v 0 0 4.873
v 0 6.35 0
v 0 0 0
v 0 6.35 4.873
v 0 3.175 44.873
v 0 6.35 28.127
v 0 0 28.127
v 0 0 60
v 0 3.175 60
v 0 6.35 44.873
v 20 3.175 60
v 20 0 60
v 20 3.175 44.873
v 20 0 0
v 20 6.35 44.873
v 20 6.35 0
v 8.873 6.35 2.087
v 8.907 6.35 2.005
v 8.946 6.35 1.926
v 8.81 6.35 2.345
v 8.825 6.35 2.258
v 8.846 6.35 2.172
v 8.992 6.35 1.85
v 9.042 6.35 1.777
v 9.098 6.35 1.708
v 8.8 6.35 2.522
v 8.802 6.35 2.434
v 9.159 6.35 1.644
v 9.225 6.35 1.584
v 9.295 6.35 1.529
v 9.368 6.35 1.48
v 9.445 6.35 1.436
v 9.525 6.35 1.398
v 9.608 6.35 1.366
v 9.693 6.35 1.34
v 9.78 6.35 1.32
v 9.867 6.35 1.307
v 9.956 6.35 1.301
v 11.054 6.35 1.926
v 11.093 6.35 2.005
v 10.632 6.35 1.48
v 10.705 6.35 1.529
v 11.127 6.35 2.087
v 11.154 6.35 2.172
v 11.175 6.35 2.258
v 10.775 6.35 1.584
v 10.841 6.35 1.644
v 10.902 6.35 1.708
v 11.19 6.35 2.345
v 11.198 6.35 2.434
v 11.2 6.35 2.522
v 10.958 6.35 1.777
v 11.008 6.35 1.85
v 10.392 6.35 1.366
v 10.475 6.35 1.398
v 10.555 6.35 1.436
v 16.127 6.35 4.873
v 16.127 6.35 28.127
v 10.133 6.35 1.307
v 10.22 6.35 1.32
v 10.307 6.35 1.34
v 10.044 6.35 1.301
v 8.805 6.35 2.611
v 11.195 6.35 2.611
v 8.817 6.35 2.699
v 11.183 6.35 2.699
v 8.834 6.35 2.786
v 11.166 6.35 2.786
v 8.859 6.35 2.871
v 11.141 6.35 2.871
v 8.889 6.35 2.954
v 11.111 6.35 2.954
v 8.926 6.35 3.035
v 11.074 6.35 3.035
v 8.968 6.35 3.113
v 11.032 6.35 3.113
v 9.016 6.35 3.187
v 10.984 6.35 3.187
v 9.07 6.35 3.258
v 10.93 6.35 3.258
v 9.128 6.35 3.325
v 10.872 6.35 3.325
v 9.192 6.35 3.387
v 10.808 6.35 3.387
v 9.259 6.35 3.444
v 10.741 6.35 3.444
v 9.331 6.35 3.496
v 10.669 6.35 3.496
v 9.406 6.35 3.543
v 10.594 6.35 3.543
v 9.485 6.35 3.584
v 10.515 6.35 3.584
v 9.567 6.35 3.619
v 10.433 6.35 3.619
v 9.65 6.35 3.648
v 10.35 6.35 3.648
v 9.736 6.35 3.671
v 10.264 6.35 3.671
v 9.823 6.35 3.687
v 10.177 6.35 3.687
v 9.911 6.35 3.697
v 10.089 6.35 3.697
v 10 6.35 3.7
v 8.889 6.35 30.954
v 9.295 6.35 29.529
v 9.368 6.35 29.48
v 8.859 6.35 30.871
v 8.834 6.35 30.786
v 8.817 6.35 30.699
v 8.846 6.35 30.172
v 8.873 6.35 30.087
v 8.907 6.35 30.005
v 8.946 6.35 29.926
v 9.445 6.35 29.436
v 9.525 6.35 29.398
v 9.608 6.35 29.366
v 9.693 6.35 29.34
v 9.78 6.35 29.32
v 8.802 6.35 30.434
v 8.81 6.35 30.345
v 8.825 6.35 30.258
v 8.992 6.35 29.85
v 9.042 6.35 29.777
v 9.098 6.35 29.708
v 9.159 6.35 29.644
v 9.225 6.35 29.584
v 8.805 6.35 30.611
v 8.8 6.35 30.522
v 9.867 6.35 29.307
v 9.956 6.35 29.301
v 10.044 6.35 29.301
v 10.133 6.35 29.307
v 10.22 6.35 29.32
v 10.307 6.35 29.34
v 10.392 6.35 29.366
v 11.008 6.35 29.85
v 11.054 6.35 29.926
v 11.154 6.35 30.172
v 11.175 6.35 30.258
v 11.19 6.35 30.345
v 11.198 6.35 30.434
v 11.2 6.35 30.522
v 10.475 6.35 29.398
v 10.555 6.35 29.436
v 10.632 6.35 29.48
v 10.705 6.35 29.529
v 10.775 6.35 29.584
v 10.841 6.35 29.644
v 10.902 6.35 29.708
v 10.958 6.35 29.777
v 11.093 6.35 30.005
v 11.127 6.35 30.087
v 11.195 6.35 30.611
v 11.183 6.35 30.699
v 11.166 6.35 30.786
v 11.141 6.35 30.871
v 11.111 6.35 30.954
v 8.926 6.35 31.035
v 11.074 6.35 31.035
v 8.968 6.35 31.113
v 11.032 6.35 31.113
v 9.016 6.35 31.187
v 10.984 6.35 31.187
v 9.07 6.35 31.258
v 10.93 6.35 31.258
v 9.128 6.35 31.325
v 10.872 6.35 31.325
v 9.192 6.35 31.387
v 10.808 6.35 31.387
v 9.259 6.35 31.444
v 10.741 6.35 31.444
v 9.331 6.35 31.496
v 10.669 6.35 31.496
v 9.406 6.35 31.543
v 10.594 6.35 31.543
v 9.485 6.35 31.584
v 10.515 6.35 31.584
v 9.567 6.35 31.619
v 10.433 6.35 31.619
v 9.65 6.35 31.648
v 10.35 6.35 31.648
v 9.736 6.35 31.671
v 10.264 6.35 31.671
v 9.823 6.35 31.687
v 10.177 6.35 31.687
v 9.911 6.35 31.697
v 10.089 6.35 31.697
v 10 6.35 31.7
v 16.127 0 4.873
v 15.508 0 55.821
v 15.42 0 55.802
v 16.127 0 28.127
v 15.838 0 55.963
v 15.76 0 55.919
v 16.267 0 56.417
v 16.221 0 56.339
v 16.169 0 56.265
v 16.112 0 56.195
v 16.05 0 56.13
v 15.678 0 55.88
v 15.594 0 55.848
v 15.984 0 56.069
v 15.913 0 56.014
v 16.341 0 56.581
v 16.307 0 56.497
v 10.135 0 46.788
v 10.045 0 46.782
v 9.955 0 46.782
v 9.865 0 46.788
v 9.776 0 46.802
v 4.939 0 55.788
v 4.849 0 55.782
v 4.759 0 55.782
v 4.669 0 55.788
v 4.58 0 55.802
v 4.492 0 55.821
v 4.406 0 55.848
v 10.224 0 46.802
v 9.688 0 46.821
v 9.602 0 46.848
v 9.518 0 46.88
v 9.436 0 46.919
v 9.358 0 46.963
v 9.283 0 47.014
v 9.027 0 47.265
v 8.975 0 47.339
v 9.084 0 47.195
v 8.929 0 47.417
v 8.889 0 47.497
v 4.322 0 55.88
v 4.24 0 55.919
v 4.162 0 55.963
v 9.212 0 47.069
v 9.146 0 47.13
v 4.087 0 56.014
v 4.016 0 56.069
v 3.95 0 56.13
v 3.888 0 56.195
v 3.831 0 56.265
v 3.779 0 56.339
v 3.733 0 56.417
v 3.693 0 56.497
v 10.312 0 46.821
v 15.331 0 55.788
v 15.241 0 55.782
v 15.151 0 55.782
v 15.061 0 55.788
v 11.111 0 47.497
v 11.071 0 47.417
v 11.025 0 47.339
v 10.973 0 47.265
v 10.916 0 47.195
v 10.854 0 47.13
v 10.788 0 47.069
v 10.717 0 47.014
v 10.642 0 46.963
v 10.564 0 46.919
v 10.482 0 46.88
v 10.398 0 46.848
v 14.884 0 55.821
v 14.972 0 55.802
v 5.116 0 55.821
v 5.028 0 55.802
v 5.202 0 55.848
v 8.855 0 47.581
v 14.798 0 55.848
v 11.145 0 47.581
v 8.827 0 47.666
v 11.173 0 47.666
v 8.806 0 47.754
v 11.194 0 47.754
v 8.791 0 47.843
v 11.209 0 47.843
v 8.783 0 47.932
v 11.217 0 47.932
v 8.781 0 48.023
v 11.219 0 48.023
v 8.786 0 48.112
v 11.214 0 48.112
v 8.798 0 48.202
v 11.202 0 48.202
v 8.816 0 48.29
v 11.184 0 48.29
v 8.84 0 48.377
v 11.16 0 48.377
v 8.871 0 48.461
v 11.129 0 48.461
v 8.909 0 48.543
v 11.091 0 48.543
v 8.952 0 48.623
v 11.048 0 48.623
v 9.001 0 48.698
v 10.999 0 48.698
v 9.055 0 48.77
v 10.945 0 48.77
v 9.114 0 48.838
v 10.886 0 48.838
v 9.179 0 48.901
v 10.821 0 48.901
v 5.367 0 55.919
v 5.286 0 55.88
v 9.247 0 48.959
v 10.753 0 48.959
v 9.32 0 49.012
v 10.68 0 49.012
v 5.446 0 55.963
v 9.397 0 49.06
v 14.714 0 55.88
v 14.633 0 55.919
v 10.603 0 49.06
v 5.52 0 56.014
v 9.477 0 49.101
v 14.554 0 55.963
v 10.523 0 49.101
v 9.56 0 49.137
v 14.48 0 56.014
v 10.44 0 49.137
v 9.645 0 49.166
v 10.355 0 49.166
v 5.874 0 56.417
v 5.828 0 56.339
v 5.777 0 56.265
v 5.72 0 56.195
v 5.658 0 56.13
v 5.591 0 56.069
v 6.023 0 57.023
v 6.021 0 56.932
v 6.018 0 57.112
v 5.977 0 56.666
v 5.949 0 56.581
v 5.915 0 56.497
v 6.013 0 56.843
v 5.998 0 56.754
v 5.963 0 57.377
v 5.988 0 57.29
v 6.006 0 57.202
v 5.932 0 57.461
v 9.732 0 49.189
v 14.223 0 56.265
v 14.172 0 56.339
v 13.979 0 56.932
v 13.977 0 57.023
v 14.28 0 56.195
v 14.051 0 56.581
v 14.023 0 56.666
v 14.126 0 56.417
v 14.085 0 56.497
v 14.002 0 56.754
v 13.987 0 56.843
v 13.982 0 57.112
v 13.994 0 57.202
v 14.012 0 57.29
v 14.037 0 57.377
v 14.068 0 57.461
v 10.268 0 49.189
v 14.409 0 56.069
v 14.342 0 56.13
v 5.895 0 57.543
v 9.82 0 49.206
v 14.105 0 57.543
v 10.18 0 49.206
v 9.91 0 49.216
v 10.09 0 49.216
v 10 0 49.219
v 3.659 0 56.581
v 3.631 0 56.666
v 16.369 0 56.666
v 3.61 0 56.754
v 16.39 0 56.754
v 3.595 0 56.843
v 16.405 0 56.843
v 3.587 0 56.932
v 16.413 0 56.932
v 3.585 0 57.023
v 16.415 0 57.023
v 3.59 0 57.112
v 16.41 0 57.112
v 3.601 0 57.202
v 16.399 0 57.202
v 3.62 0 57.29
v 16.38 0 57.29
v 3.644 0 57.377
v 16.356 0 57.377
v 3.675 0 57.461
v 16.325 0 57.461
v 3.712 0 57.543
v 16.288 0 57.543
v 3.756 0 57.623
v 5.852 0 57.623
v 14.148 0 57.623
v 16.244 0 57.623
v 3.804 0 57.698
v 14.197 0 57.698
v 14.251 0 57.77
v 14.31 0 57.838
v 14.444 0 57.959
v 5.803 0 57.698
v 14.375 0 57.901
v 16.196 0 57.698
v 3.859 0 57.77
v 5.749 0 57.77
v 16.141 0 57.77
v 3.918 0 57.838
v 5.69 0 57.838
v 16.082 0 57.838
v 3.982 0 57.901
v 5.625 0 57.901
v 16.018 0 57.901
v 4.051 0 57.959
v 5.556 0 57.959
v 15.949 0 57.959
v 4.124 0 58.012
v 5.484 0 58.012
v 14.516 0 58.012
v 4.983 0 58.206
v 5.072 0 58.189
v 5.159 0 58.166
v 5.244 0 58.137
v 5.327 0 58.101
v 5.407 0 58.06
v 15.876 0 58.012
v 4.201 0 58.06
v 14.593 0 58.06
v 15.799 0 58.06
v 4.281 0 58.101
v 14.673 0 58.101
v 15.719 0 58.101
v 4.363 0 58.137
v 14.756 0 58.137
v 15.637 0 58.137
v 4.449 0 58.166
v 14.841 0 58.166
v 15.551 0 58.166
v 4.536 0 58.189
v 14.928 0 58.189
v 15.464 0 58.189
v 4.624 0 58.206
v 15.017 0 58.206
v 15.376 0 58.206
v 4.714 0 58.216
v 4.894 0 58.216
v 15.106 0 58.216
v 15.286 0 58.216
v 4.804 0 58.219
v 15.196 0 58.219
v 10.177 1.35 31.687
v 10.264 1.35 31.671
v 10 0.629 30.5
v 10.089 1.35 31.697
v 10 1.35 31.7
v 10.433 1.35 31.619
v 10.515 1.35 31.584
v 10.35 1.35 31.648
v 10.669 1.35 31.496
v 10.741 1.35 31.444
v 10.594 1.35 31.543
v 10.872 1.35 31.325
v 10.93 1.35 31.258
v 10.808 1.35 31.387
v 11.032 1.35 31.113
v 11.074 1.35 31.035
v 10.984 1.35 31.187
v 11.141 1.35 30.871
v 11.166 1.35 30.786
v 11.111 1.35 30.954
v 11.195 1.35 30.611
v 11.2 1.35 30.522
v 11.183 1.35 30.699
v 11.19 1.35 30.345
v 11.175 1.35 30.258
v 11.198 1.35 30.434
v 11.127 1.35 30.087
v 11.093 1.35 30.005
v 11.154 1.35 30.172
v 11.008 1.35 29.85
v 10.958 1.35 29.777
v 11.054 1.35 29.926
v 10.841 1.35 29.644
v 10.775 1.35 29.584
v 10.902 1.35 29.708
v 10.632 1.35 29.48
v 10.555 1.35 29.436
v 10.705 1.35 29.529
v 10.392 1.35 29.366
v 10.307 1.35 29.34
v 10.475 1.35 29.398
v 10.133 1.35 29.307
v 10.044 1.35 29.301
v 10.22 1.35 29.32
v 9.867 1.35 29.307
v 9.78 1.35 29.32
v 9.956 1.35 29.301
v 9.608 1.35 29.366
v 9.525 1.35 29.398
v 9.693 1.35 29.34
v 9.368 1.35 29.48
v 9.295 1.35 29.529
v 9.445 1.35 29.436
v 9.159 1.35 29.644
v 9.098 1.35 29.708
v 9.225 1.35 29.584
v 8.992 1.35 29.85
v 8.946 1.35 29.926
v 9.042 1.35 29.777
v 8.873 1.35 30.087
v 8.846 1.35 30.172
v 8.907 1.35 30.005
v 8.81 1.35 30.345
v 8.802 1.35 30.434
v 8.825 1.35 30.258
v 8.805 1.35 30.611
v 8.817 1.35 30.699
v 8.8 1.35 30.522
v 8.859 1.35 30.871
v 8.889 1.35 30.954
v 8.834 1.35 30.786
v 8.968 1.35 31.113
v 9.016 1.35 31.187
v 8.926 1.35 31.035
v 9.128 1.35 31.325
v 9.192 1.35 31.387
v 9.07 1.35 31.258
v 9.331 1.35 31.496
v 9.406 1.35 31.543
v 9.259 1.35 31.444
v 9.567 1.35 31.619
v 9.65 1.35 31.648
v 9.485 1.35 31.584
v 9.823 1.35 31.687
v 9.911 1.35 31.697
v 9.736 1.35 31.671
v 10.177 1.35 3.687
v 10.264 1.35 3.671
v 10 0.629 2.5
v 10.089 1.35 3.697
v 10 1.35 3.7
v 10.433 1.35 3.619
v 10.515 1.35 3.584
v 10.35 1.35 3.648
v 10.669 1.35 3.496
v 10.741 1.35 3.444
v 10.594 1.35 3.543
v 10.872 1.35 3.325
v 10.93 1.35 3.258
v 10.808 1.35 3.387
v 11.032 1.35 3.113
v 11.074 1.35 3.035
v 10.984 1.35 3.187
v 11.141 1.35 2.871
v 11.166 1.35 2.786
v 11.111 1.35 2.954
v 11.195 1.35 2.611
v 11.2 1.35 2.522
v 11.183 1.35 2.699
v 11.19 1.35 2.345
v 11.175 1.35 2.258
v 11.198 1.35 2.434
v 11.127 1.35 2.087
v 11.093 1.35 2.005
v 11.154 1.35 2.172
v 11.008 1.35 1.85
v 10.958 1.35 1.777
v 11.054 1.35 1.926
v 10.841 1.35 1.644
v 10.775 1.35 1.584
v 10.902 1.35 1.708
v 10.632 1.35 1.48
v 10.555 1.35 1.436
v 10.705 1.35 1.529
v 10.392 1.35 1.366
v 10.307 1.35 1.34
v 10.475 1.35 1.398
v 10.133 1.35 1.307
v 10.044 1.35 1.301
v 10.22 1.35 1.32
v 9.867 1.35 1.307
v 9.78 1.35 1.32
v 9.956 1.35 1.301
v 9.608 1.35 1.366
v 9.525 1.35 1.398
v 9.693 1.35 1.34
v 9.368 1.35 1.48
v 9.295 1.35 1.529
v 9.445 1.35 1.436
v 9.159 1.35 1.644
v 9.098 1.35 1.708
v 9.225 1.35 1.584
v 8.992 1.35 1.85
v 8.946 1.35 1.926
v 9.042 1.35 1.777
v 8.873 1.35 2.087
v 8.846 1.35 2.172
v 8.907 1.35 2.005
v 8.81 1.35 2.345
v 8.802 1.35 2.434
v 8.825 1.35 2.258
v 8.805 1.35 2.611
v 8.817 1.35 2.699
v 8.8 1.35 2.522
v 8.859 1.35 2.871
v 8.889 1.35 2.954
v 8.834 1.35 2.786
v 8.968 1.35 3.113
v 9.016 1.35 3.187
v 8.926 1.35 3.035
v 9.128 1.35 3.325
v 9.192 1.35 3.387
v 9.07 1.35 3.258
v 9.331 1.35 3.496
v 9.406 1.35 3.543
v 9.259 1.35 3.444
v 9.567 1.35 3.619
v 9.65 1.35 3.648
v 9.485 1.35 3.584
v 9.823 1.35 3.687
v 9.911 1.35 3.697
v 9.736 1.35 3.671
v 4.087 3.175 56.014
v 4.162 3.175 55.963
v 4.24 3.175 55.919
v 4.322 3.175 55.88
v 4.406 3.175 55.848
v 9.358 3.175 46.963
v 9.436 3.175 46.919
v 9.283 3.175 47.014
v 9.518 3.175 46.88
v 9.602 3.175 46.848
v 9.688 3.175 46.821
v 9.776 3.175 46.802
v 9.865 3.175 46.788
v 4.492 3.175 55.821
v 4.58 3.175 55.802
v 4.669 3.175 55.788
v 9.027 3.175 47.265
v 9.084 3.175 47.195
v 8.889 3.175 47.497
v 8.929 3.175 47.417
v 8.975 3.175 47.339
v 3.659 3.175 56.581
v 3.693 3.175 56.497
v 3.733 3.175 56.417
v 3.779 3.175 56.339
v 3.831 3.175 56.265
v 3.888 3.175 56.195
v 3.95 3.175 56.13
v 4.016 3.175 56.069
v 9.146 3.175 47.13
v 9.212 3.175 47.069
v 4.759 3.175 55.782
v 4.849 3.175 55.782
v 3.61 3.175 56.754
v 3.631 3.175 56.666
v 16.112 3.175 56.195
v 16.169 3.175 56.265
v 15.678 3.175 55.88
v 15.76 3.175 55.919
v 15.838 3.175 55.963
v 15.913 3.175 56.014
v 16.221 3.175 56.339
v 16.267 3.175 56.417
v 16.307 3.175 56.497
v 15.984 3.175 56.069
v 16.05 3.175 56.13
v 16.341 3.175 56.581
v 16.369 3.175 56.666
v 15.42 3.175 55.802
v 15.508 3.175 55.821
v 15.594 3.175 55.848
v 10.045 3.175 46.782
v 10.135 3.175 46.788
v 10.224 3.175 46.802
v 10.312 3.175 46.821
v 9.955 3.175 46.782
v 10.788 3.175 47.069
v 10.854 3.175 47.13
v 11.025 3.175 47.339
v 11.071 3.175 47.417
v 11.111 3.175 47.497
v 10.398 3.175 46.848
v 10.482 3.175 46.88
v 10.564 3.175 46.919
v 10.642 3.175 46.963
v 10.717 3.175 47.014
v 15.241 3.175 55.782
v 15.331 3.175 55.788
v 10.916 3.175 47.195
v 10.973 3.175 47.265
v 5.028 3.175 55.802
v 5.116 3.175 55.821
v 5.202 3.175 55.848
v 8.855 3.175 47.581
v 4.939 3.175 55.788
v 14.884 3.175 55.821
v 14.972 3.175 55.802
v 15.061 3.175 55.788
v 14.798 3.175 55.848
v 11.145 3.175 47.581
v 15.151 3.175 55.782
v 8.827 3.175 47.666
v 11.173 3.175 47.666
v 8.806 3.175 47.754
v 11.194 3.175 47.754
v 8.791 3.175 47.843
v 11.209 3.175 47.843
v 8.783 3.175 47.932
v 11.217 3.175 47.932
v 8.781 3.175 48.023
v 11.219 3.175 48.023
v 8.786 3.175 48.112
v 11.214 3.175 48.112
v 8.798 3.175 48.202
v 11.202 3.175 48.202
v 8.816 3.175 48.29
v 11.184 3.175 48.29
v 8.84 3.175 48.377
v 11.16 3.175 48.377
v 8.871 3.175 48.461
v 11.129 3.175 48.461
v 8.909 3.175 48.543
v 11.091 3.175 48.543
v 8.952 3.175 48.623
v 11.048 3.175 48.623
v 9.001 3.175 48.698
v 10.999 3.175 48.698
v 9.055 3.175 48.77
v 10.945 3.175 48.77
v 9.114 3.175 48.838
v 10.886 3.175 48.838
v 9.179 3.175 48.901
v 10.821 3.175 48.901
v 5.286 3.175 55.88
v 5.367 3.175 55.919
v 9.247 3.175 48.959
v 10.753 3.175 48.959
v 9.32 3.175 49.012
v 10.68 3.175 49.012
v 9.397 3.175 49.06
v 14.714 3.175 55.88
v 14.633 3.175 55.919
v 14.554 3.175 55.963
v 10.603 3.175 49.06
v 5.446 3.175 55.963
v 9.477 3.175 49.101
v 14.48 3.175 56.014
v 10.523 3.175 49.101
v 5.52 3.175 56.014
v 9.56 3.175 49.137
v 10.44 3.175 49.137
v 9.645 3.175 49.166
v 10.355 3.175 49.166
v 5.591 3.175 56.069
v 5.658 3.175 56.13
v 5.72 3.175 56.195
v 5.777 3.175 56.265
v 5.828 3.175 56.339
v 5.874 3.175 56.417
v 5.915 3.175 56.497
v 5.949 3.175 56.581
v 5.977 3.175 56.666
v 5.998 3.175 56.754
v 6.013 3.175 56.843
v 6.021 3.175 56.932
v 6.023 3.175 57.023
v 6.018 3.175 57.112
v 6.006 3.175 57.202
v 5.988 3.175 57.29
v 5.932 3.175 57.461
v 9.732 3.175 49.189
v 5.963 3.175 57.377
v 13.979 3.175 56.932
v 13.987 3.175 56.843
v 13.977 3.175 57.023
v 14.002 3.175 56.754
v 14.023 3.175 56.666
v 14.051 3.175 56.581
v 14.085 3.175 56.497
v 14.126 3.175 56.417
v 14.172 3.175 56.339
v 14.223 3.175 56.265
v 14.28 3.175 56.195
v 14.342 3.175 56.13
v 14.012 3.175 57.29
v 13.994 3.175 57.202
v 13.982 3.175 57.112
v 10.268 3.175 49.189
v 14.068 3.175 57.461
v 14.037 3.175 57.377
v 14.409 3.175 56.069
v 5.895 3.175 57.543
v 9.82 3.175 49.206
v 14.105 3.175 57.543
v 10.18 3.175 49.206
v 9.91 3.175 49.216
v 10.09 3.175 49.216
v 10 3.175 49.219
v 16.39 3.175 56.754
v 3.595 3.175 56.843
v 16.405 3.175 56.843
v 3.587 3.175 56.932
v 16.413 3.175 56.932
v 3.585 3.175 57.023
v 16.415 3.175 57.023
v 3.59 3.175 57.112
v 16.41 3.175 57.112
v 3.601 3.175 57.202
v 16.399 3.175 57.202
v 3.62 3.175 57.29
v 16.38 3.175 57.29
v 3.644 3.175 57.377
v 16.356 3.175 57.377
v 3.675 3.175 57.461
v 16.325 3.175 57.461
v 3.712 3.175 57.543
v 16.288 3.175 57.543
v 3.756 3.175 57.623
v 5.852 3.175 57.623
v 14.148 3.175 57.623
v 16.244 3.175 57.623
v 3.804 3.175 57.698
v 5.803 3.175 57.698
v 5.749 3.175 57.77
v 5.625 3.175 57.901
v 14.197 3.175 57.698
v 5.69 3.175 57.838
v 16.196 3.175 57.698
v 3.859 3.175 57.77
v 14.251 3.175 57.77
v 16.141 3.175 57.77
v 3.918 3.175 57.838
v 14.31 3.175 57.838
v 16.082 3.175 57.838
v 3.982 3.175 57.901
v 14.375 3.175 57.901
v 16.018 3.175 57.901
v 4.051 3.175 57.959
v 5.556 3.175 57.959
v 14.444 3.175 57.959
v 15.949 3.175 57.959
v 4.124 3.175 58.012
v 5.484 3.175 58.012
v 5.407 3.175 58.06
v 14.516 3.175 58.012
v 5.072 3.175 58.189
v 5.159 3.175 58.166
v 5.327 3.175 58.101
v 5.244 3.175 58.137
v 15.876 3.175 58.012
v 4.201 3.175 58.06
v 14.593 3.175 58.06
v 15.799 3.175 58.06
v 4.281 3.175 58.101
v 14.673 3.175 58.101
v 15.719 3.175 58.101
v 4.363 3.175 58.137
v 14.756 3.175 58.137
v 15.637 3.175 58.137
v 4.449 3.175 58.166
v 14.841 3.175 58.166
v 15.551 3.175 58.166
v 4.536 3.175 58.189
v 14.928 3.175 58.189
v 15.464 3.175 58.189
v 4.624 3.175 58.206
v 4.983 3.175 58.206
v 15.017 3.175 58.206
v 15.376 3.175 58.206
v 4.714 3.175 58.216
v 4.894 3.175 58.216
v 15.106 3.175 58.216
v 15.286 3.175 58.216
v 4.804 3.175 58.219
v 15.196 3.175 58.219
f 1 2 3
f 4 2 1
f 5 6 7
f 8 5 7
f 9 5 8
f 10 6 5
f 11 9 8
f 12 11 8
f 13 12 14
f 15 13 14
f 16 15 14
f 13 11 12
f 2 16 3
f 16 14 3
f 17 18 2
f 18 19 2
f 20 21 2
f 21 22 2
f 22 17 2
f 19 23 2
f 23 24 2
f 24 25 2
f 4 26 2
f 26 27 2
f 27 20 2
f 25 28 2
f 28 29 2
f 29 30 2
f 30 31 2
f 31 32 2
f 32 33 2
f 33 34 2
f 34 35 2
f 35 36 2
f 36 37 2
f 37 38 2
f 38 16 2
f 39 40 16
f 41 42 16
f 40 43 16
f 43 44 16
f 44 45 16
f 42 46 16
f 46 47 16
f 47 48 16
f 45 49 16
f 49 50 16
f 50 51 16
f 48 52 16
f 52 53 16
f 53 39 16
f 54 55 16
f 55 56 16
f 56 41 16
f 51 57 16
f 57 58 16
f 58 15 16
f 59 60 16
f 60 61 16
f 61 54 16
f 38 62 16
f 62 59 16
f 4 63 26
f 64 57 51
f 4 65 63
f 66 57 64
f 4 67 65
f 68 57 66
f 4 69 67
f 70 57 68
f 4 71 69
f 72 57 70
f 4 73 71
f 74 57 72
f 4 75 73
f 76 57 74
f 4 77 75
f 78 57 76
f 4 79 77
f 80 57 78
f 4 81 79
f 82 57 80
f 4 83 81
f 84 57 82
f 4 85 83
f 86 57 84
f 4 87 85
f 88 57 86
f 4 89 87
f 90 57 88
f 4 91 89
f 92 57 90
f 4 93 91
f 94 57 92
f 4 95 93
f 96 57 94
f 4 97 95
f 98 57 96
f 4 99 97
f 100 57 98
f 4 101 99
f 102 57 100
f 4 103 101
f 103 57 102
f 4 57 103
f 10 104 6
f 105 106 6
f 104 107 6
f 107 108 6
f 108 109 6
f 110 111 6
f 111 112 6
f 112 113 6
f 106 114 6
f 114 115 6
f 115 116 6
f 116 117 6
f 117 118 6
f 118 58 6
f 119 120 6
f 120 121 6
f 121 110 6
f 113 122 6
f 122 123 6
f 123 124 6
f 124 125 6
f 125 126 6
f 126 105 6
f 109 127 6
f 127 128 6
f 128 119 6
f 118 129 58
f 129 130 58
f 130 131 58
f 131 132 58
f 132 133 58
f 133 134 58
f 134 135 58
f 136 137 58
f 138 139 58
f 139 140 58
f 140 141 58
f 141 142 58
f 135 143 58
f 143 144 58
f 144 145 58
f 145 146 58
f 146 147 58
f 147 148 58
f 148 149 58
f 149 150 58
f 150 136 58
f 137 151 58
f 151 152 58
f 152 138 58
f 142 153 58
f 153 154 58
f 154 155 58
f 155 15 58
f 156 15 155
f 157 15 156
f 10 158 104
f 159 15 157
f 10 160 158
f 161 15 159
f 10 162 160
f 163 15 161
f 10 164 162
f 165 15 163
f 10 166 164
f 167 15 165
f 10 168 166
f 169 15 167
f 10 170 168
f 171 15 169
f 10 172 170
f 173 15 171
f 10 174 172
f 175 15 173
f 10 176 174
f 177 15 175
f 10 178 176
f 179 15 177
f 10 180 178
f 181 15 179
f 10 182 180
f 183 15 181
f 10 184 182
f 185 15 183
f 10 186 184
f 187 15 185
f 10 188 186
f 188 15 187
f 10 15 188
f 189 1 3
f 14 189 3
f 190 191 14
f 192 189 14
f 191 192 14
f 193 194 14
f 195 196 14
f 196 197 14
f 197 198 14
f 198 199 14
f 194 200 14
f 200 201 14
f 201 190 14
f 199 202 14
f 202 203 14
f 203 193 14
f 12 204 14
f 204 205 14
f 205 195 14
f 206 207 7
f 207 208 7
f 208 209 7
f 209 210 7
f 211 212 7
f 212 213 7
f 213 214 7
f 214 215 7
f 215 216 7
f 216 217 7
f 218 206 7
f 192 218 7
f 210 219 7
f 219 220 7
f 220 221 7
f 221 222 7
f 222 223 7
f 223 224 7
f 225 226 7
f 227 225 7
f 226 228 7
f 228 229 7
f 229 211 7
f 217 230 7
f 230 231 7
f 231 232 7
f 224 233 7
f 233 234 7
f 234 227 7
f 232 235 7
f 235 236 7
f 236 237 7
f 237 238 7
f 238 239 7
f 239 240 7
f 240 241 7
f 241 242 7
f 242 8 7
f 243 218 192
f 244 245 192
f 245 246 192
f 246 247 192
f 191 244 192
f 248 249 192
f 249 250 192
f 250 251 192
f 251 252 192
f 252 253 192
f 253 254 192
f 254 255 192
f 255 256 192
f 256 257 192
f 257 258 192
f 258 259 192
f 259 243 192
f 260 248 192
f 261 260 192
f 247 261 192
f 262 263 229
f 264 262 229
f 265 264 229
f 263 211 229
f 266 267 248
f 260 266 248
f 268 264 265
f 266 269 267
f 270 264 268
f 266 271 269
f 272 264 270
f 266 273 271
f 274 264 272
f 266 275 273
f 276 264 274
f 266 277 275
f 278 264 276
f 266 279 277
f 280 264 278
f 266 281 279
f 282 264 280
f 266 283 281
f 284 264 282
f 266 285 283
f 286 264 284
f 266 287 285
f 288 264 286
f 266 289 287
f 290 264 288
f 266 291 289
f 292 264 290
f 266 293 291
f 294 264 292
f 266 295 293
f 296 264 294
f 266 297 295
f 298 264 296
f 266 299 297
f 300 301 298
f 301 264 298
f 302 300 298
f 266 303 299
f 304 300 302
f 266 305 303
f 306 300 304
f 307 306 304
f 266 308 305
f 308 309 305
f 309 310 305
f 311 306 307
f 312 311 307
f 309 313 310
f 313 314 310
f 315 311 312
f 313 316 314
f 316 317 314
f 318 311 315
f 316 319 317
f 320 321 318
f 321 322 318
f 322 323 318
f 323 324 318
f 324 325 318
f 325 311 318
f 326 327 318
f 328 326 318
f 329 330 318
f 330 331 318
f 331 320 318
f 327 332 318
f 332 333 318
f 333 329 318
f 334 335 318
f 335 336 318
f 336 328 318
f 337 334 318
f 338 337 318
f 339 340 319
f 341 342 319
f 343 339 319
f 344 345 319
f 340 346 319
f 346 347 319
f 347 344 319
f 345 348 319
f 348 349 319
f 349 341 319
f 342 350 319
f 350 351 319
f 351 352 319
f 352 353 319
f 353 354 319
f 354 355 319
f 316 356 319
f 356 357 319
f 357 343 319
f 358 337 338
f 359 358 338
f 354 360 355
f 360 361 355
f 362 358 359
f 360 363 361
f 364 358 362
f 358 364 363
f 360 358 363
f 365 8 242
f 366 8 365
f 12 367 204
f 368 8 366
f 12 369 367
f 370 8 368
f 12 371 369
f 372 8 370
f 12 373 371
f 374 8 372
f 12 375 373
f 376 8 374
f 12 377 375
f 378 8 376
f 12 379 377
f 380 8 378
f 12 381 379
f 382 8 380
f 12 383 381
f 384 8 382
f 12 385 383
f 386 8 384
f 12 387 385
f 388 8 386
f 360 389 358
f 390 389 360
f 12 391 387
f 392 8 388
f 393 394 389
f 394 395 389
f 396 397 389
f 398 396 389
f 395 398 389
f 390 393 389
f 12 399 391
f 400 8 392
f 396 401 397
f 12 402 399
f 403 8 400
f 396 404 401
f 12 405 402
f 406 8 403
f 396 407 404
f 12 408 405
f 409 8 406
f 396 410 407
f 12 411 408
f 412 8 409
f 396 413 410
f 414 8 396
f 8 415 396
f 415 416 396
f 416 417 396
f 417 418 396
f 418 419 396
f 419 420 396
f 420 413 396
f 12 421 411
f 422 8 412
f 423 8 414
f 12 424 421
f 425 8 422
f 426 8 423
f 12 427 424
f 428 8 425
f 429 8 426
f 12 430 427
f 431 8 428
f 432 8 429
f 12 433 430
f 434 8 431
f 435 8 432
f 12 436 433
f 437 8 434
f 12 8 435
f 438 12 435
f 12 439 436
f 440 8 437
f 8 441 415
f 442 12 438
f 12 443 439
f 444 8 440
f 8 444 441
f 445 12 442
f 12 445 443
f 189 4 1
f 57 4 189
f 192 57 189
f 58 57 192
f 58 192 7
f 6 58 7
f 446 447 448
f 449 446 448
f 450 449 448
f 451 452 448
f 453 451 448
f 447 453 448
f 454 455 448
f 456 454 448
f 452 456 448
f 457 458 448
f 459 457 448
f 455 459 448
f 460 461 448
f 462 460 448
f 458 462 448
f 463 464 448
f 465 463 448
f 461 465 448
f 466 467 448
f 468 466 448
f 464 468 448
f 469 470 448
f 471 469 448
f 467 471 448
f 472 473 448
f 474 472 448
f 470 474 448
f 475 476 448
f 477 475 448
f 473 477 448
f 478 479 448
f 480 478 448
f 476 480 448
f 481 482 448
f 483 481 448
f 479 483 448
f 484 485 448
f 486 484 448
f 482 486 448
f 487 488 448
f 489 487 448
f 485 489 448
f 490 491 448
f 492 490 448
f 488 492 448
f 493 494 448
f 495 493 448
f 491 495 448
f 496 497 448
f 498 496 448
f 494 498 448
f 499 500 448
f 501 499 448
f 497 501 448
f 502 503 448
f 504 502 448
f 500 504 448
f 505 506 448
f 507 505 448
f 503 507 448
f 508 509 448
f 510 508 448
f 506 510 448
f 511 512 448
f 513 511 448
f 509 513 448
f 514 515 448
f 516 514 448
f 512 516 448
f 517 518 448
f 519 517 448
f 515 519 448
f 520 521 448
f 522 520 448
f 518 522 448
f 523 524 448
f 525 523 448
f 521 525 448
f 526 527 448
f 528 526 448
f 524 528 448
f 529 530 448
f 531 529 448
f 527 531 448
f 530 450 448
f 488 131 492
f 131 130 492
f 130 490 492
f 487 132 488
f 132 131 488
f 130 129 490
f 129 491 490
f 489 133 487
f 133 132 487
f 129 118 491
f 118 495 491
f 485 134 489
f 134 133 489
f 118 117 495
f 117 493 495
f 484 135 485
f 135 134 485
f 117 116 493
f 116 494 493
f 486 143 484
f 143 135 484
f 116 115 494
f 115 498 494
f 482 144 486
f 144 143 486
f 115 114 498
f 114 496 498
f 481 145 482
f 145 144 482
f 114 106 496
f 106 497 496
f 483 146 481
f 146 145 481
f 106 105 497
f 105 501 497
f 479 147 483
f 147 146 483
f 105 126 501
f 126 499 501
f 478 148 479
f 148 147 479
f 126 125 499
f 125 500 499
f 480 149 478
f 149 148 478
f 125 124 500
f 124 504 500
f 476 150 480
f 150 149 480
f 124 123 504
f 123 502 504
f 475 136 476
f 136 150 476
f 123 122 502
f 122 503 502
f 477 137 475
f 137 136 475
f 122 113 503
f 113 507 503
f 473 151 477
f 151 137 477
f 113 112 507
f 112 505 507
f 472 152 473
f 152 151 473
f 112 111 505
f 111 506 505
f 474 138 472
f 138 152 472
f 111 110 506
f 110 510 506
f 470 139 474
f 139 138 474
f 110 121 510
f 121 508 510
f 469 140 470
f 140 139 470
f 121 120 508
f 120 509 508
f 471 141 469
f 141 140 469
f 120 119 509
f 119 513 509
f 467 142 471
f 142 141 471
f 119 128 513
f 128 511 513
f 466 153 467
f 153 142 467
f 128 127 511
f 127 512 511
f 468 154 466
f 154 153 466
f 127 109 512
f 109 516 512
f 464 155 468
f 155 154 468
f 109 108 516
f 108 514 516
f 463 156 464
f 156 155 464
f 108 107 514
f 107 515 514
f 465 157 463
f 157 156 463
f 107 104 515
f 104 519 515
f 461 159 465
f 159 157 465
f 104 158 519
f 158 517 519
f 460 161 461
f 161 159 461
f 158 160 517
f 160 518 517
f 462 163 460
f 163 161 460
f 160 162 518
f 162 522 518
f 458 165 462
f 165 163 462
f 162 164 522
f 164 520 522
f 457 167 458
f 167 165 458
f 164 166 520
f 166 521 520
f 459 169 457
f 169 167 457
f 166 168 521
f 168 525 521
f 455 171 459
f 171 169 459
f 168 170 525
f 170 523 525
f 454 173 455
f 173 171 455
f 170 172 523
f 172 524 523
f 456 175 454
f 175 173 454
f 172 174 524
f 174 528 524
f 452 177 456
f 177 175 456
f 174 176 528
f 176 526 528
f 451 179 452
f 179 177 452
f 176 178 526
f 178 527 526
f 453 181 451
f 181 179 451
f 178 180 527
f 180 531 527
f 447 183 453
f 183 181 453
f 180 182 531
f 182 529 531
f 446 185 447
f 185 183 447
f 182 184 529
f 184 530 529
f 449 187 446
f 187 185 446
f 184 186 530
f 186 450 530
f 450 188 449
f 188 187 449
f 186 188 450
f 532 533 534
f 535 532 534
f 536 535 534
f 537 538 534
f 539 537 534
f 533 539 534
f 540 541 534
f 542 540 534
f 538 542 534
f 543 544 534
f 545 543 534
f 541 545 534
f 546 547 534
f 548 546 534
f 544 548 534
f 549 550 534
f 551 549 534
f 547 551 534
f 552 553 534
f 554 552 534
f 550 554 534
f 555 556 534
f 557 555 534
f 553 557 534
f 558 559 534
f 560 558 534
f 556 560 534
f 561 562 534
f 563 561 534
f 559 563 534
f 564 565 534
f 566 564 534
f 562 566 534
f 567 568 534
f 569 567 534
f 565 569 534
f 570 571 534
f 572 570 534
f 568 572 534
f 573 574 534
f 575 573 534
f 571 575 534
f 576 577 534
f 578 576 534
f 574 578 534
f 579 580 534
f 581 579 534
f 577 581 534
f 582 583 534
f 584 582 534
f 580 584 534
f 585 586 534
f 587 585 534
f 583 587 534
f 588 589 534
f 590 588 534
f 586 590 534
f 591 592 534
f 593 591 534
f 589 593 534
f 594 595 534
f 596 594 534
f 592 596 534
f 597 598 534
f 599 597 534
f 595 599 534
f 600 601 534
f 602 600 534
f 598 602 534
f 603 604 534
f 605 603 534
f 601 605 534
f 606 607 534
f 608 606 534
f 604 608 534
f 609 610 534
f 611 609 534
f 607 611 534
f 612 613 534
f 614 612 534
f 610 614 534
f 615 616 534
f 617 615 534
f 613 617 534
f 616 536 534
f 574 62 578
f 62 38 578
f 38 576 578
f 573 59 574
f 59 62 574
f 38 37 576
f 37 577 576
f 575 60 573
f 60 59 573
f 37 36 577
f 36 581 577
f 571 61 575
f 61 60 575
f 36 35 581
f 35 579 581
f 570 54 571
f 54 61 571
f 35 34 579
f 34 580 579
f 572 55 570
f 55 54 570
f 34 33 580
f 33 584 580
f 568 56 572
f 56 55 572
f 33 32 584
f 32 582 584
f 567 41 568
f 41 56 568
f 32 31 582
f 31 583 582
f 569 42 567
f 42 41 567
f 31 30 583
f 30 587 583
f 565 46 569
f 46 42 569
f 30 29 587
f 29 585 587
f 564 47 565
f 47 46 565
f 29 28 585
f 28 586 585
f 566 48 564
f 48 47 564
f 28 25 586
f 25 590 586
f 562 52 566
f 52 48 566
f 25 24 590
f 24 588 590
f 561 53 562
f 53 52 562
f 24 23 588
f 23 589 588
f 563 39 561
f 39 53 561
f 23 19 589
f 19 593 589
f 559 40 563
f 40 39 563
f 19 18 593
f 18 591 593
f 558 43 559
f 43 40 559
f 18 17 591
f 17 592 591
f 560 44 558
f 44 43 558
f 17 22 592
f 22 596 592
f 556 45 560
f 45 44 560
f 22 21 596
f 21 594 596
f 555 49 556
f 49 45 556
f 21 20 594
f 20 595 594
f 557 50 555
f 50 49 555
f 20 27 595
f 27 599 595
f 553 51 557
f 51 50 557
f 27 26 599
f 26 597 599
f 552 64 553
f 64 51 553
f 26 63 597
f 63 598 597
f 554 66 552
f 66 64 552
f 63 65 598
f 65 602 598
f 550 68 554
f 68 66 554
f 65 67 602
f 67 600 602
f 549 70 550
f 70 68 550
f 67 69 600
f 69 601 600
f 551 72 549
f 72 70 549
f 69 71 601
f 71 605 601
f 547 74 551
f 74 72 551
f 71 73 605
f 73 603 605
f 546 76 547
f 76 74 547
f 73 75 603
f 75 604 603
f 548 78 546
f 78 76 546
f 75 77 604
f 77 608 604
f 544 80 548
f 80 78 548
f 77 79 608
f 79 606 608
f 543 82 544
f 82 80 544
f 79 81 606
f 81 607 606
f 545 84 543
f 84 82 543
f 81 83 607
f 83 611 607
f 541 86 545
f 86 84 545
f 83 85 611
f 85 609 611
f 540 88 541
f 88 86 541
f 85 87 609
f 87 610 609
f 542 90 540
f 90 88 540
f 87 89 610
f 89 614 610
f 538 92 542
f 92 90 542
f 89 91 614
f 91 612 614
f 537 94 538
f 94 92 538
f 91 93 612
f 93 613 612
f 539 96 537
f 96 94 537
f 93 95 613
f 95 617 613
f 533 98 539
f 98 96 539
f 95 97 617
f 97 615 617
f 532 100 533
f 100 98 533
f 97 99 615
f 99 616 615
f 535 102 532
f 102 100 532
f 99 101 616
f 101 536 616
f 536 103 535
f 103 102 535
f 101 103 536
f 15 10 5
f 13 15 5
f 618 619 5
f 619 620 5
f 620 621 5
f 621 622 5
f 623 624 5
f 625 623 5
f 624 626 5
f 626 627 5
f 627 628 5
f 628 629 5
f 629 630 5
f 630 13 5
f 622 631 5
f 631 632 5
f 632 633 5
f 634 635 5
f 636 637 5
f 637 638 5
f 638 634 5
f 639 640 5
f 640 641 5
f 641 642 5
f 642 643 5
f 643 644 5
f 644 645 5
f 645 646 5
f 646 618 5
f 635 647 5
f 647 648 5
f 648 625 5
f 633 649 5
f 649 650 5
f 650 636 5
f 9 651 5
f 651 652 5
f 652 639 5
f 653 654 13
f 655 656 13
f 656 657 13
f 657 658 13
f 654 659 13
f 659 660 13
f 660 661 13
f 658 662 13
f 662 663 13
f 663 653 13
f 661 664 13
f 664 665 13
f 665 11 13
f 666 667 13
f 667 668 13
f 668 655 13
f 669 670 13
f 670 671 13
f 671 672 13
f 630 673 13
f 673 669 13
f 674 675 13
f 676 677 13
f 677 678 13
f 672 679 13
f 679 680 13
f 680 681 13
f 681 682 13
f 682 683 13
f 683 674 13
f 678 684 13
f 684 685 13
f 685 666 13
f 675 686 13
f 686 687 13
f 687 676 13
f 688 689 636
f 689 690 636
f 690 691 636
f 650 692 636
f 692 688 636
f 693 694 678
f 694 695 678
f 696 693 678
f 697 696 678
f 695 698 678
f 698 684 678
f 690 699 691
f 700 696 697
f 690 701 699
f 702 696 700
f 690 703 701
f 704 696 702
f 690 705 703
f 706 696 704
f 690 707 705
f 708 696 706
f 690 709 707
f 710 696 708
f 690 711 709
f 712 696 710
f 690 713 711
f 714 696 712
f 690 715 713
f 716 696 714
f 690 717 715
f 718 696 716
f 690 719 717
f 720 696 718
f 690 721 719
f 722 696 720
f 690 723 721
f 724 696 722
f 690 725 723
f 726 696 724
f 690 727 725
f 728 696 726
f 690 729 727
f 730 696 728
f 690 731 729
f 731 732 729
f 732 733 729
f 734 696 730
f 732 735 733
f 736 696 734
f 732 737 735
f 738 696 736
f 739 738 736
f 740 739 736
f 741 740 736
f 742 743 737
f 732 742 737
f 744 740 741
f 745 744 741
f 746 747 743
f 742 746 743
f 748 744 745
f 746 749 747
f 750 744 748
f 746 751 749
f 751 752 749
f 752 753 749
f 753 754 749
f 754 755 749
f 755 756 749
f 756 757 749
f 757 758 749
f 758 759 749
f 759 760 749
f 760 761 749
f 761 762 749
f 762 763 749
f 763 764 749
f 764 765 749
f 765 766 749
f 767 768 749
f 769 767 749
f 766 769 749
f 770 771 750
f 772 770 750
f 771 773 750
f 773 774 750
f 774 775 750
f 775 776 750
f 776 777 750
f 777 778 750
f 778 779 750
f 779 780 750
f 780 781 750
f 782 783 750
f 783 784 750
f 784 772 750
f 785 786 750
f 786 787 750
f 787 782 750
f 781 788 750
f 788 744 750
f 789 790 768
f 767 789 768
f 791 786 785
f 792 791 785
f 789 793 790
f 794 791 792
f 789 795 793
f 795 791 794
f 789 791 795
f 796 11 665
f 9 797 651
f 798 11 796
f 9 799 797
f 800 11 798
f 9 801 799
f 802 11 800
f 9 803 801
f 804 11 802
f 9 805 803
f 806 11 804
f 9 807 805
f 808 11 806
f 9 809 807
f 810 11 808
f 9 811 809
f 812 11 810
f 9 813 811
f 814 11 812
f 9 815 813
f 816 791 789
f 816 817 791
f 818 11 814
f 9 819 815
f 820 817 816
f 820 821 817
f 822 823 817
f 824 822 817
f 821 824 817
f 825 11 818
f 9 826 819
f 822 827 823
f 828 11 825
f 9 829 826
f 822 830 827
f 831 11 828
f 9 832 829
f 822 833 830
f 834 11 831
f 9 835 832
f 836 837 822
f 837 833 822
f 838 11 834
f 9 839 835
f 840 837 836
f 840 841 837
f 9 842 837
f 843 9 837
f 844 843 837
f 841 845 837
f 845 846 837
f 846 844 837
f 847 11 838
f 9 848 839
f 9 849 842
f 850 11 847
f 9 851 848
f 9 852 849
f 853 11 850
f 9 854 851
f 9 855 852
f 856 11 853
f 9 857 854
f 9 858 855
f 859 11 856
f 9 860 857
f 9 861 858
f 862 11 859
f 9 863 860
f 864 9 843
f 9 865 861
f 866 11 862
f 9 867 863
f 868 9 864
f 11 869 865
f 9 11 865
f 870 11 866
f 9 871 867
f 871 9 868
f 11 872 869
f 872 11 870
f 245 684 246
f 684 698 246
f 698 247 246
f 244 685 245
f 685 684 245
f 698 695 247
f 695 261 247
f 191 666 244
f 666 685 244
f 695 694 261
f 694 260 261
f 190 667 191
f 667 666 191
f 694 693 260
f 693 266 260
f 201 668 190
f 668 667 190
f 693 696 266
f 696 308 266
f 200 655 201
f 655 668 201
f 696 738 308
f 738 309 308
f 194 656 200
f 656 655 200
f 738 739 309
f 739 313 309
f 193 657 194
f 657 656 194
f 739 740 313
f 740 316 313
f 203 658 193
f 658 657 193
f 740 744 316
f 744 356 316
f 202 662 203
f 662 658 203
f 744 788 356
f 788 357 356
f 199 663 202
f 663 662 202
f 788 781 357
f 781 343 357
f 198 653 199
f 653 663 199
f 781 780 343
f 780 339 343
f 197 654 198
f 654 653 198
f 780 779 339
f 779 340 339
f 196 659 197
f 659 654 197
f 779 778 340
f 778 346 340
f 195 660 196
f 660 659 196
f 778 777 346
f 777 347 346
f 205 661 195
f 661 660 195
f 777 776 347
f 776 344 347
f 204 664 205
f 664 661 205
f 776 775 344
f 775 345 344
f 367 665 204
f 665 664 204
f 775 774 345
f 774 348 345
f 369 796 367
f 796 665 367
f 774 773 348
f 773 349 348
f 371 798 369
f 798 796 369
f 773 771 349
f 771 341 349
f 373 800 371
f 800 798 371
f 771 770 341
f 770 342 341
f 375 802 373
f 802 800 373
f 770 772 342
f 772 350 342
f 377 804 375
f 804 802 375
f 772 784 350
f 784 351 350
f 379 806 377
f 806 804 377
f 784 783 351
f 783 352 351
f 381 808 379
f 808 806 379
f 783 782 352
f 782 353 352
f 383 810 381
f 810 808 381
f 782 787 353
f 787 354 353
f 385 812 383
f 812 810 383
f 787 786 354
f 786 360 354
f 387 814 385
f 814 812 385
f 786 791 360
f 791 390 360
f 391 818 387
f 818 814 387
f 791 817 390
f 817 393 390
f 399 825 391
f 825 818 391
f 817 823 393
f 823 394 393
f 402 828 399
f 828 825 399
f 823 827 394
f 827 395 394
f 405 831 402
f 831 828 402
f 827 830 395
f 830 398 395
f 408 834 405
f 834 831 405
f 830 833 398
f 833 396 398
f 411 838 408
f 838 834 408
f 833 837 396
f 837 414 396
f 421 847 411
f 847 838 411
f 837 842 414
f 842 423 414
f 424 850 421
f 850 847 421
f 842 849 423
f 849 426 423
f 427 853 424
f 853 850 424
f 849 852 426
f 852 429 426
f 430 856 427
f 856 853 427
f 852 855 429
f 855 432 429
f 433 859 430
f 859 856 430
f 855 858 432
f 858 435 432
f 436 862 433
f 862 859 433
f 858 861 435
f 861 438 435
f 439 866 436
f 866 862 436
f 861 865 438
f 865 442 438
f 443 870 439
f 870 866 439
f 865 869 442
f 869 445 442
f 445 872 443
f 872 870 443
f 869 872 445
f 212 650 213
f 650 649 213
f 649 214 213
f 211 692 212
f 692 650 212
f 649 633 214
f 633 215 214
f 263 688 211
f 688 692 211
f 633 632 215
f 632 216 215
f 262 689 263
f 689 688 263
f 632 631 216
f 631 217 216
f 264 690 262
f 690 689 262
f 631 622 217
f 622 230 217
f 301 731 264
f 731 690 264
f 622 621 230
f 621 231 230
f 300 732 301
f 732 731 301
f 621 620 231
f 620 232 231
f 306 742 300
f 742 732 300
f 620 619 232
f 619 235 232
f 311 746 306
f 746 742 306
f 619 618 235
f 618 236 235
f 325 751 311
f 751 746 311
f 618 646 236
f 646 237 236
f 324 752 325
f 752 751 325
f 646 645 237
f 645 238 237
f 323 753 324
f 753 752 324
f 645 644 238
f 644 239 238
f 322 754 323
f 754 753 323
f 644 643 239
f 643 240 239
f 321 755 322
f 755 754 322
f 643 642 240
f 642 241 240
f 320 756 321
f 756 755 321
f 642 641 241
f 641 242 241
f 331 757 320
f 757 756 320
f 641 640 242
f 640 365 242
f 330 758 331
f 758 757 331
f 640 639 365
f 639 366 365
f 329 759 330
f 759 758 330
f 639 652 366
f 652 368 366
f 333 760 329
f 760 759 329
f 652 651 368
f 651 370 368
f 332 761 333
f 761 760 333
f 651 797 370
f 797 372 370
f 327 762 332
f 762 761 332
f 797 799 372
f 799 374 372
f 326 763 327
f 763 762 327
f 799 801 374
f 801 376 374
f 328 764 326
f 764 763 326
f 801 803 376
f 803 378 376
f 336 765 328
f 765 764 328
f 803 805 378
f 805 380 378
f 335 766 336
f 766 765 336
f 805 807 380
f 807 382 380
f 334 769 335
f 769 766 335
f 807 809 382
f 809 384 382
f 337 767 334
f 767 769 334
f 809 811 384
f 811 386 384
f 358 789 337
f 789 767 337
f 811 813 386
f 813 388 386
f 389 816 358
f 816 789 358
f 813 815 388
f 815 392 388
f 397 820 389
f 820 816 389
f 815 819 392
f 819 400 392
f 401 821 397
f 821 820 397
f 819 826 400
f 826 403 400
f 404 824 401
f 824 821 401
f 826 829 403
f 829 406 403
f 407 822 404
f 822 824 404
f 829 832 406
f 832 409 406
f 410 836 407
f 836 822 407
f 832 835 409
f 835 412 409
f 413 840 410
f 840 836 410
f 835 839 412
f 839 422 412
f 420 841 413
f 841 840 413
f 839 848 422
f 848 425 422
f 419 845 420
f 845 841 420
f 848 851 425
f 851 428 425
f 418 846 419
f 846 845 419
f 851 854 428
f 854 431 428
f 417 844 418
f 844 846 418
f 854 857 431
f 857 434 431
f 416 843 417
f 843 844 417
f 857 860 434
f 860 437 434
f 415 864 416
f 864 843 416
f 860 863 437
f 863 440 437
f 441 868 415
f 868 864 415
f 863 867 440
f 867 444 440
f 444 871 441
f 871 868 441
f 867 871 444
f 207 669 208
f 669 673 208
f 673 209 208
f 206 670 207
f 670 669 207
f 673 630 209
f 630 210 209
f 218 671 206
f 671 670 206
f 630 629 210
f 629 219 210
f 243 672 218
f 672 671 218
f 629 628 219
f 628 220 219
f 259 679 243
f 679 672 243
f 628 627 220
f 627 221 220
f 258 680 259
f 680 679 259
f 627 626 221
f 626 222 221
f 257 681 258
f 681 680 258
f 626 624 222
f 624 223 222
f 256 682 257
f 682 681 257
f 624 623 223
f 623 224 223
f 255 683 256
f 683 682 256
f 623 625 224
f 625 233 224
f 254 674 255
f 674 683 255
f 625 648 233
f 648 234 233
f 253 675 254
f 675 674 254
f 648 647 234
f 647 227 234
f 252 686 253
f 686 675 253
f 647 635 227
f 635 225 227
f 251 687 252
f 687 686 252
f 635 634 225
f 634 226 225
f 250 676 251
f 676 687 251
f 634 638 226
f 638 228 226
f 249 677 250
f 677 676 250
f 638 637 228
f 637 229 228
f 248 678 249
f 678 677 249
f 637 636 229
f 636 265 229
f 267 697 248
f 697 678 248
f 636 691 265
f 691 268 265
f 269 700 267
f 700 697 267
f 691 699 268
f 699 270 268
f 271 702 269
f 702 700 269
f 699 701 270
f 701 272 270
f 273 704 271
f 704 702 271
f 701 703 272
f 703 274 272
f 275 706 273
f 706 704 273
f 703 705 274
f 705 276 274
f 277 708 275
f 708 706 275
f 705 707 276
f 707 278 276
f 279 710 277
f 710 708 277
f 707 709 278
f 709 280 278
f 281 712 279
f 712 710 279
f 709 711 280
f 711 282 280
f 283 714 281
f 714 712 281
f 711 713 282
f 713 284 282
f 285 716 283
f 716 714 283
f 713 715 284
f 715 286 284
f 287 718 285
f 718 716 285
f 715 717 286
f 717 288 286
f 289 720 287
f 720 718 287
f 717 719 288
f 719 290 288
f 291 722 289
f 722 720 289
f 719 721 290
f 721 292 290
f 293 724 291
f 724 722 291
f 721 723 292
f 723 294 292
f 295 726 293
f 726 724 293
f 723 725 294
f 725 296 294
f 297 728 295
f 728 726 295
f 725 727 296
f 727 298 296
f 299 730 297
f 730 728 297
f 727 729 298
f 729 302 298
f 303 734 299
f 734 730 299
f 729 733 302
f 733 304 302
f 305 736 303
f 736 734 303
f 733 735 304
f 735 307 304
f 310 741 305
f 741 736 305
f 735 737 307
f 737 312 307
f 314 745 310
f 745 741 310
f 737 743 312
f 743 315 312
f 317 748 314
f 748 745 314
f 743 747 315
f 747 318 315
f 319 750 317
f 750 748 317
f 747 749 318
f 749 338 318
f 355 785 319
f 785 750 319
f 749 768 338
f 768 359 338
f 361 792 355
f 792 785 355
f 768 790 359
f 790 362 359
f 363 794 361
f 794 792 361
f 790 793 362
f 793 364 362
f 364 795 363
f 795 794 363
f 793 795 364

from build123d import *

# Parameters (mm, degrees)
SKETCH2_W                = 20
SKETCH2_H                = 60
BOSS_EXTRUDE1_DEPTH      = 6.35
SKETCH4_W                = 16.127
SKETCH4_H                = 23.254
CUT_EXTRUDE1_DEPTH       = 64.563531211
M2_CLEARANCE_HOLE1_D     = 2.4
M2_CLEARANCE_HOLE1_DEPTH = 5
M2_CLEARANCE_HOLE1_TIP   = 0.721032743
SKETCH10_W               = 15.127
SKETCH10_H               = 3.175
CUT_EXTRUDE2_DEPTH       = 64.563531211
F_2_CLEARANCE_HOLE1_D    = 2.4384


with BuildPart() as part:
    # Sketch2 → Boss-Extrude1 (new body)
    with BuildSketch(Plane(origin=(0, 0, 0), x_dir=(1, 0, 0), z_dir=(0, 1, 0))):
        with Locations((10, -30)):
            Rectangle(SKETCH2_W, SKETCH2_H)
    extrude(amount=BOSS_EXTRUDE1_DEPTH)

    # Sketch4 → Cut-Extrude1 (cut, through all)
    with BuildSketch(Plane(origin=(0, 6.35, 0), x_dir=(1, 0, 0), z_dir=(0, 1, 0))):
        with Locations((8.0635, -16.5)):
            Rectangle(SKETCH4_W, SKETCH4_H)
    extrude(amount=-CUT_EXTRUDE1_DEPTH, mode=Mode.SUBTRACT)

    # M2 Clearance Hole1
    with Locations(Plane(origin=(0, 6.35, 0), x_dir=(1, 0, 0), z_dir=(0, 1, 0))):
        with Locations((10, -30.5), (10, -2.5)):
            Hole(M2_CLEARANCE_HOLE1_D / 2, depth=M2_CLEARANCE_HOLE1_DEPTH)
            with Locations((0, 0, -(M2_CLEARANCE_HOLE1_DEPTH + M2_CLEARANCE_HOLE1_TIP / 2))):  # 118° drill point
                Cone(0, M2_CLEARANCE_HOLE1_D / 2, M2_CLEARANCE_HOLE1_TIP, mode=Mode.SUBTRACT)

    # Sketch10 → Cut-Extrude2 (cut, through all)
    with BuildSketch(Plane(origin=(20, 0, 0), x_dir=(0, 0, -1), z_dir=(1, 0, 0))):
        with Locations((-52.4365, 4.7625)):
            Rectangle(SKETCH10_W, SKETCH10_H)
    extrude(amount=-CUT_EXTRUDE2_DEPTH, mode=Mode.SUBTRACT)

    # #2 Clearance Hole1 (through all)
    with Locations(Plane(origin=(0, 3.175, 0), x_dir=(1, 0, 0), z_dir=(0, 1, 0))):
        with Locations((10, -48), (4.803847577, -57), (15.196152423, -57)):
            Hole(F_2_CLEARANCE_HOLE1_D / 2)


solid = part.part
